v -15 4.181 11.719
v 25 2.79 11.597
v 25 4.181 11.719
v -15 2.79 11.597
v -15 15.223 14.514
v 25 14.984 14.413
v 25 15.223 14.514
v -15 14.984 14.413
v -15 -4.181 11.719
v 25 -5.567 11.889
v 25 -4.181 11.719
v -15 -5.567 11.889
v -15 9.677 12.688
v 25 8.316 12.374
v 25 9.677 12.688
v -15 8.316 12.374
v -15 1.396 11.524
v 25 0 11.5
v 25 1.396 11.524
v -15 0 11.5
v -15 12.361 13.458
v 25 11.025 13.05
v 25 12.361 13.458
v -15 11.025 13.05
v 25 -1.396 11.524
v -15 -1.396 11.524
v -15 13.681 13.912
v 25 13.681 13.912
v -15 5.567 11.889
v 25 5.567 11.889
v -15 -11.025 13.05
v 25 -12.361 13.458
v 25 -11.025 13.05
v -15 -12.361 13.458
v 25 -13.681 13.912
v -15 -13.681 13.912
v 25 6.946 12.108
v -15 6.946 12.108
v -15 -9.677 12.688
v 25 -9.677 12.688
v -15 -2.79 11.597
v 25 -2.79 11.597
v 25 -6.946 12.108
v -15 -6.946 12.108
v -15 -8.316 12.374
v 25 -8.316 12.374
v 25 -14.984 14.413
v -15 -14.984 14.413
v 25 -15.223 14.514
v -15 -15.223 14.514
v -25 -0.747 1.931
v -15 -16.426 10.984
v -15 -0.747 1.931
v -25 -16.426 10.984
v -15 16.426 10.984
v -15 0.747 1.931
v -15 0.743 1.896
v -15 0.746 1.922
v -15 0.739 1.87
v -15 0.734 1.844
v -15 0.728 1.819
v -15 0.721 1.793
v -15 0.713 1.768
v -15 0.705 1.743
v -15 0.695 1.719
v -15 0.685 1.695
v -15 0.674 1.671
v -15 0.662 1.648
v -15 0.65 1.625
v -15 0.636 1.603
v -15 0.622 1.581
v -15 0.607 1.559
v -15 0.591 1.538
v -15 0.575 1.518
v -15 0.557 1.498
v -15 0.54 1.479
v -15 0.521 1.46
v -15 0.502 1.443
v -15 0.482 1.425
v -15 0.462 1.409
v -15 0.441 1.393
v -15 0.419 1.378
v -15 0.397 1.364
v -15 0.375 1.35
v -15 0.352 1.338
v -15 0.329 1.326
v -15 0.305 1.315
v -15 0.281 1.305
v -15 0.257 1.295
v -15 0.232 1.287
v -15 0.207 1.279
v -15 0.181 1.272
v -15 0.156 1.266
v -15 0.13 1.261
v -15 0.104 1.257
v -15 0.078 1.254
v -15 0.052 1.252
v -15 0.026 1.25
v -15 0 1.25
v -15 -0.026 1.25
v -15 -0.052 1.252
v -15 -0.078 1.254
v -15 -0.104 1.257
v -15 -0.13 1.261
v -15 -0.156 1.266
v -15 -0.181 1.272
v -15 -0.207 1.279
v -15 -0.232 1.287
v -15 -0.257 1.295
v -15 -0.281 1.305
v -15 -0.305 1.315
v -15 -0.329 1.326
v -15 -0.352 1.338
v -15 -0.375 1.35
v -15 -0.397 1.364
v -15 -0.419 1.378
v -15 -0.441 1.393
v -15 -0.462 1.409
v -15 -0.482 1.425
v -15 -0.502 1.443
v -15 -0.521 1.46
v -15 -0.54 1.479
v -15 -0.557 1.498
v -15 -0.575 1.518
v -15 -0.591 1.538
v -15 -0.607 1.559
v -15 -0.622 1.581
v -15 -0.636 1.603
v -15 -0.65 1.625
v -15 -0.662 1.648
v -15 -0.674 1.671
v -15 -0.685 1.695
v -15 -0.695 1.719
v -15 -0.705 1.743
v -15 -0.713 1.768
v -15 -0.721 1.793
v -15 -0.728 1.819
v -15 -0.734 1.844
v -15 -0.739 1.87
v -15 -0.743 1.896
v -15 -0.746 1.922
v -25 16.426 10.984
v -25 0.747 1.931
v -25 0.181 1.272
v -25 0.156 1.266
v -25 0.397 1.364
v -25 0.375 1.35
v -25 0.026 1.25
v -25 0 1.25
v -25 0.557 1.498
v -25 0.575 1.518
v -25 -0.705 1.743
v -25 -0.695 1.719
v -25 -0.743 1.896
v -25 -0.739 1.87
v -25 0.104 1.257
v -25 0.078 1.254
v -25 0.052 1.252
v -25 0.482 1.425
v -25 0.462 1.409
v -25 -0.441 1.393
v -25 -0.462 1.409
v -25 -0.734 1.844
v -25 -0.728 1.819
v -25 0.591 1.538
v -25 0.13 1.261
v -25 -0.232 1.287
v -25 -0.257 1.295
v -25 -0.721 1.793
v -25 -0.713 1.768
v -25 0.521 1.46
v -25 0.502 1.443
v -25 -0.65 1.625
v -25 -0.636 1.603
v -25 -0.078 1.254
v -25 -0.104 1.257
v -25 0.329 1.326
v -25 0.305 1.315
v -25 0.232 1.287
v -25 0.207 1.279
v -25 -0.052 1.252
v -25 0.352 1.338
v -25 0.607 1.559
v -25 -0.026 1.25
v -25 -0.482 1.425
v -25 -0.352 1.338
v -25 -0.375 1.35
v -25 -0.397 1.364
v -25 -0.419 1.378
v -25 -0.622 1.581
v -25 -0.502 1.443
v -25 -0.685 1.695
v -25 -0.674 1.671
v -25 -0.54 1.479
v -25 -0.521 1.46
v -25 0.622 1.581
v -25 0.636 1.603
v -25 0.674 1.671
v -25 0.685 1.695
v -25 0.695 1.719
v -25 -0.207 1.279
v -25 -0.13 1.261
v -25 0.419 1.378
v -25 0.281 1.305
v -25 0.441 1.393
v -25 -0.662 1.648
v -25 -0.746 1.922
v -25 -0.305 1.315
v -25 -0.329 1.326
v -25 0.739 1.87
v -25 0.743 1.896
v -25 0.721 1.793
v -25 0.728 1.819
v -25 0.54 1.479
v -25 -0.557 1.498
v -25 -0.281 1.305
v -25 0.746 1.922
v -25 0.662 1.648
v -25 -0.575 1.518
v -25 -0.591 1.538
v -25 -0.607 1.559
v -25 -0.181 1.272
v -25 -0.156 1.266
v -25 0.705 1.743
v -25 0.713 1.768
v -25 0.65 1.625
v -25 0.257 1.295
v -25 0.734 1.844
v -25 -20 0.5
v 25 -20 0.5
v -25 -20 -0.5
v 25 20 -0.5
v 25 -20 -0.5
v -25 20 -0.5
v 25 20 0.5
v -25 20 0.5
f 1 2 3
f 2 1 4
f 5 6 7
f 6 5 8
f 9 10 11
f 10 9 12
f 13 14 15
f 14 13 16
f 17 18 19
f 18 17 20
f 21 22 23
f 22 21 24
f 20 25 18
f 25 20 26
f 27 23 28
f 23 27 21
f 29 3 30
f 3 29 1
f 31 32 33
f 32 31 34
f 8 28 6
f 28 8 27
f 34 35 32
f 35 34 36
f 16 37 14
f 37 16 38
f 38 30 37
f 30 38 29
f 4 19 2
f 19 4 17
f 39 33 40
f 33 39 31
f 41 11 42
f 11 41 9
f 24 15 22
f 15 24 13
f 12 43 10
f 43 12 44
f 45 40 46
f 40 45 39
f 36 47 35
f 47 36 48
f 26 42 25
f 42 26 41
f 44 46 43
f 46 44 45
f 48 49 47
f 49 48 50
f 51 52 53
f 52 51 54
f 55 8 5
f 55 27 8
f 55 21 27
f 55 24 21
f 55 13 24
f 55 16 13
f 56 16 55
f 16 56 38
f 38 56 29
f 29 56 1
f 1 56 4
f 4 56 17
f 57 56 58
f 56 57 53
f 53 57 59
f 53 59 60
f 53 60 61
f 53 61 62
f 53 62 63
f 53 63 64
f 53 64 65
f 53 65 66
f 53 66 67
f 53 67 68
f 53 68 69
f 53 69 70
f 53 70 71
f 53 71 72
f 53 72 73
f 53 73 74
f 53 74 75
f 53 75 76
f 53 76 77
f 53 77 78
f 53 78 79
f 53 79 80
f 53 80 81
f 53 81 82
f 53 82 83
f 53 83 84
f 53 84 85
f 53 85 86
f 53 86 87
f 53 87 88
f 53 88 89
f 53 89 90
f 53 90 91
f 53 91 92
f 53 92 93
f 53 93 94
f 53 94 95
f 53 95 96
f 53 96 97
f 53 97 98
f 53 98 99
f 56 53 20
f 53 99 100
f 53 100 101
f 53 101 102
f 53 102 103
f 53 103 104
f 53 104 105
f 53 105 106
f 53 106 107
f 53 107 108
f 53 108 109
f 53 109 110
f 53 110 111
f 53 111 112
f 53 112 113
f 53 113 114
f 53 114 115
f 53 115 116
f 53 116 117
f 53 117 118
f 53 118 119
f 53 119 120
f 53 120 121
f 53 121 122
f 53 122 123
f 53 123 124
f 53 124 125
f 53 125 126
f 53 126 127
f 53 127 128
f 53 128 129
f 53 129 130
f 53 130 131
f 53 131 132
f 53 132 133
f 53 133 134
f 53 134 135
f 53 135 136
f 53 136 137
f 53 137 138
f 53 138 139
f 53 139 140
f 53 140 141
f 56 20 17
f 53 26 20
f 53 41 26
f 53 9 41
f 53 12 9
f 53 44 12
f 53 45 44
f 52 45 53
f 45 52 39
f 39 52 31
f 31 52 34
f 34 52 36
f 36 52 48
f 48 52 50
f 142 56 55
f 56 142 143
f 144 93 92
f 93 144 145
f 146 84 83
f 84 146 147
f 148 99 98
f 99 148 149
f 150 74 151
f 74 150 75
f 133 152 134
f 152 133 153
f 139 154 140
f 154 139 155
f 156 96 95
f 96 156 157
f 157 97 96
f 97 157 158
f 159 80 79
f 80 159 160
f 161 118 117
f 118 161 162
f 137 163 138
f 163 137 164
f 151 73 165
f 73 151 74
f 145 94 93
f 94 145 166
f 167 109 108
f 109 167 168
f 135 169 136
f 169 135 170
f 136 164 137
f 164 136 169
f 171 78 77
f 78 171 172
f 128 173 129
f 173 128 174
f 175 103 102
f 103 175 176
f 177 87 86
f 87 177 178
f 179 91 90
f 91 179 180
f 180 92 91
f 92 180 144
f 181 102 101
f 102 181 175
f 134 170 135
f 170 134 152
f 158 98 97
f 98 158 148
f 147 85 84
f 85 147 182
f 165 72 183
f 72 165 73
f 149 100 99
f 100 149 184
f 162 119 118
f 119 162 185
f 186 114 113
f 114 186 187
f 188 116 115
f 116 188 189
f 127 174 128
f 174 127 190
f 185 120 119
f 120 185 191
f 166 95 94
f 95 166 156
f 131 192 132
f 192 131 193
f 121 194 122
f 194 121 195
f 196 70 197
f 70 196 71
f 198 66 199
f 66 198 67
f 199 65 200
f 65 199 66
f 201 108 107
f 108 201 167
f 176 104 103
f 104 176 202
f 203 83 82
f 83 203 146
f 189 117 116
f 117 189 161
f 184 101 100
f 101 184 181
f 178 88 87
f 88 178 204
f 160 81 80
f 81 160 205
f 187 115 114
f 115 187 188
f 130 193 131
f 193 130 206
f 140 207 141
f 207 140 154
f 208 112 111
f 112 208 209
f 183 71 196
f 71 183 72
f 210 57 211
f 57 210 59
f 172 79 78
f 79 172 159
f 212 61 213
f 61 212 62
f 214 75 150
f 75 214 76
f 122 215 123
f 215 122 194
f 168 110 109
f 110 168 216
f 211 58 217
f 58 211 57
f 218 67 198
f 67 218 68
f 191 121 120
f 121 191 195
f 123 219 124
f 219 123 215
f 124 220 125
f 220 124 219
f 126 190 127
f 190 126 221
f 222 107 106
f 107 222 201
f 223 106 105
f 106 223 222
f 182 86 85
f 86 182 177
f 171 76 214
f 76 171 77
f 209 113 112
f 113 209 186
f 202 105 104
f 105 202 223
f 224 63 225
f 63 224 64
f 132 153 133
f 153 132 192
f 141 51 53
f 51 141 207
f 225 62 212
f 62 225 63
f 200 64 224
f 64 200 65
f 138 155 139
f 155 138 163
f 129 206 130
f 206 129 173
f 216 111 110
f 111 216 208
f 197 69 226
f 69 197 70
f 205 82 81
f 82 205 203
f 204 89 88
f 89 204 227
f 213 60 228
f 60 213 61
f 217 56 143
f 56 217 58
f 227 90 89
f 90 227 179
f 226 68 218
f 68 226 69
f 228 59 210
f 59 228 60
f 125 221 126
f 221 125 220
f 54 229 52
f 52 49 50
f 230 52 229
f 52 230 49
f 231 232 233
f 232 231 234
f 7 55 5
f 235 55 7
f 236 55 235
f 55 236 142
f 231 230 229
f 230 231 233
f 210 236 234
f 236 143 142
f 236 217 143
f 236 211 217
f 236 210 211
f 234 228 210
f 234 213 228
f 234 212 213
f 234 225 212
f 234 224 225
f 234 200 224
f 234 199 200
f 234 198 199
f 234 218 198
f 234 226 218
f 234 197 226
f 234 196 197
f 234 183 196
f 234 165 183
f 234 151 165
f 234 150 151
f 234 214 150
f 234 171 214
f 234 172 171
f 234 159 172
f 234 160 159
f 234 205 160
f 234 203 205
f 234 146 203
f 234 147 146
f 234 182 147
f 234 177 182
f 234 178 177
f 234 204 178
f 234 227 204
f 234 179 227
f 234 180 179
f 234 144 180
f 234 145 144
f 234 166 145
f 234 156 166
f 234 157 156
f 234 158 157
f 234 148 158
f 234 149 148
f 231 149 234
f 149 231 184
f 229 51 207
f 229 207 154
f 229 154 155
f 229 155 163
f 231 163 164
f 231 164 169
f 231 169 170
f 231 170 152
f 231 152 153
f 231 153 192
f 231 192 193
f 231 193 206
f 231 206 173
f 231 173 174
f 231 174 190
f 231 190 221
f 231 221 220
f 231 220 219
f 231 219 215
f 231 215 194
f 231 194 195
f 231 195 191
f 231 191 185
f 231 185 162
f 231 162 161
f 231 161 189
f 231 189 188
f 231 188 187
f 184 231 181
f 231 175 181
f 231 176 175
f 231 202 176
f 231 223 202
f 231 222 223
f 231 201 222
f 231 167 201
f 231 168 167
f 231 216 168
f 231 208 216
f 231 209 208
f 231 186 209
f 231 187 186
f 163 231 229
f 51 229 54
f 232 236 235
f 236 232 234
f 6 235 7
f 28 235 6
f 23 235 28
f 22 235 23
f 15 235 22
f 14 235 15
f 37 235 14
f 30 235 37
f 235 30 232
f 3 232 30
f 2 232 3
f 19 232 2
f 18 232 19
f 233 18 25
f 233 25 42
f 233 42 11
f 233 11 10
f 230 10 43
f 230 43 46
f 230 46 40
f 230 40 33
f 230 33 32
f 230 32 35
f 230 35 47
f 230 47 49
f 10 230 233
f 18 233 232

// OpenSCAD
$fn = 180;

difference() {
    hull() {
        translate([0,0,0]) cube([50,40,1], true);
        translate([0,0,22]) cube([50,25,1], true);
    }
    union() {
        translate([-24,0,51.5]) rotate(a=[0,90,0]) cylinder(50, 40, 40);
        translate([-26,0,51.5]) rotate(a=[0,90,0]) cylinder(r=50, h=11, $fn=6);
        translate([-26,0,2]) rotate(a=[0,90,0]) cylinder(11, 0.75, 0.75);
    }
}
